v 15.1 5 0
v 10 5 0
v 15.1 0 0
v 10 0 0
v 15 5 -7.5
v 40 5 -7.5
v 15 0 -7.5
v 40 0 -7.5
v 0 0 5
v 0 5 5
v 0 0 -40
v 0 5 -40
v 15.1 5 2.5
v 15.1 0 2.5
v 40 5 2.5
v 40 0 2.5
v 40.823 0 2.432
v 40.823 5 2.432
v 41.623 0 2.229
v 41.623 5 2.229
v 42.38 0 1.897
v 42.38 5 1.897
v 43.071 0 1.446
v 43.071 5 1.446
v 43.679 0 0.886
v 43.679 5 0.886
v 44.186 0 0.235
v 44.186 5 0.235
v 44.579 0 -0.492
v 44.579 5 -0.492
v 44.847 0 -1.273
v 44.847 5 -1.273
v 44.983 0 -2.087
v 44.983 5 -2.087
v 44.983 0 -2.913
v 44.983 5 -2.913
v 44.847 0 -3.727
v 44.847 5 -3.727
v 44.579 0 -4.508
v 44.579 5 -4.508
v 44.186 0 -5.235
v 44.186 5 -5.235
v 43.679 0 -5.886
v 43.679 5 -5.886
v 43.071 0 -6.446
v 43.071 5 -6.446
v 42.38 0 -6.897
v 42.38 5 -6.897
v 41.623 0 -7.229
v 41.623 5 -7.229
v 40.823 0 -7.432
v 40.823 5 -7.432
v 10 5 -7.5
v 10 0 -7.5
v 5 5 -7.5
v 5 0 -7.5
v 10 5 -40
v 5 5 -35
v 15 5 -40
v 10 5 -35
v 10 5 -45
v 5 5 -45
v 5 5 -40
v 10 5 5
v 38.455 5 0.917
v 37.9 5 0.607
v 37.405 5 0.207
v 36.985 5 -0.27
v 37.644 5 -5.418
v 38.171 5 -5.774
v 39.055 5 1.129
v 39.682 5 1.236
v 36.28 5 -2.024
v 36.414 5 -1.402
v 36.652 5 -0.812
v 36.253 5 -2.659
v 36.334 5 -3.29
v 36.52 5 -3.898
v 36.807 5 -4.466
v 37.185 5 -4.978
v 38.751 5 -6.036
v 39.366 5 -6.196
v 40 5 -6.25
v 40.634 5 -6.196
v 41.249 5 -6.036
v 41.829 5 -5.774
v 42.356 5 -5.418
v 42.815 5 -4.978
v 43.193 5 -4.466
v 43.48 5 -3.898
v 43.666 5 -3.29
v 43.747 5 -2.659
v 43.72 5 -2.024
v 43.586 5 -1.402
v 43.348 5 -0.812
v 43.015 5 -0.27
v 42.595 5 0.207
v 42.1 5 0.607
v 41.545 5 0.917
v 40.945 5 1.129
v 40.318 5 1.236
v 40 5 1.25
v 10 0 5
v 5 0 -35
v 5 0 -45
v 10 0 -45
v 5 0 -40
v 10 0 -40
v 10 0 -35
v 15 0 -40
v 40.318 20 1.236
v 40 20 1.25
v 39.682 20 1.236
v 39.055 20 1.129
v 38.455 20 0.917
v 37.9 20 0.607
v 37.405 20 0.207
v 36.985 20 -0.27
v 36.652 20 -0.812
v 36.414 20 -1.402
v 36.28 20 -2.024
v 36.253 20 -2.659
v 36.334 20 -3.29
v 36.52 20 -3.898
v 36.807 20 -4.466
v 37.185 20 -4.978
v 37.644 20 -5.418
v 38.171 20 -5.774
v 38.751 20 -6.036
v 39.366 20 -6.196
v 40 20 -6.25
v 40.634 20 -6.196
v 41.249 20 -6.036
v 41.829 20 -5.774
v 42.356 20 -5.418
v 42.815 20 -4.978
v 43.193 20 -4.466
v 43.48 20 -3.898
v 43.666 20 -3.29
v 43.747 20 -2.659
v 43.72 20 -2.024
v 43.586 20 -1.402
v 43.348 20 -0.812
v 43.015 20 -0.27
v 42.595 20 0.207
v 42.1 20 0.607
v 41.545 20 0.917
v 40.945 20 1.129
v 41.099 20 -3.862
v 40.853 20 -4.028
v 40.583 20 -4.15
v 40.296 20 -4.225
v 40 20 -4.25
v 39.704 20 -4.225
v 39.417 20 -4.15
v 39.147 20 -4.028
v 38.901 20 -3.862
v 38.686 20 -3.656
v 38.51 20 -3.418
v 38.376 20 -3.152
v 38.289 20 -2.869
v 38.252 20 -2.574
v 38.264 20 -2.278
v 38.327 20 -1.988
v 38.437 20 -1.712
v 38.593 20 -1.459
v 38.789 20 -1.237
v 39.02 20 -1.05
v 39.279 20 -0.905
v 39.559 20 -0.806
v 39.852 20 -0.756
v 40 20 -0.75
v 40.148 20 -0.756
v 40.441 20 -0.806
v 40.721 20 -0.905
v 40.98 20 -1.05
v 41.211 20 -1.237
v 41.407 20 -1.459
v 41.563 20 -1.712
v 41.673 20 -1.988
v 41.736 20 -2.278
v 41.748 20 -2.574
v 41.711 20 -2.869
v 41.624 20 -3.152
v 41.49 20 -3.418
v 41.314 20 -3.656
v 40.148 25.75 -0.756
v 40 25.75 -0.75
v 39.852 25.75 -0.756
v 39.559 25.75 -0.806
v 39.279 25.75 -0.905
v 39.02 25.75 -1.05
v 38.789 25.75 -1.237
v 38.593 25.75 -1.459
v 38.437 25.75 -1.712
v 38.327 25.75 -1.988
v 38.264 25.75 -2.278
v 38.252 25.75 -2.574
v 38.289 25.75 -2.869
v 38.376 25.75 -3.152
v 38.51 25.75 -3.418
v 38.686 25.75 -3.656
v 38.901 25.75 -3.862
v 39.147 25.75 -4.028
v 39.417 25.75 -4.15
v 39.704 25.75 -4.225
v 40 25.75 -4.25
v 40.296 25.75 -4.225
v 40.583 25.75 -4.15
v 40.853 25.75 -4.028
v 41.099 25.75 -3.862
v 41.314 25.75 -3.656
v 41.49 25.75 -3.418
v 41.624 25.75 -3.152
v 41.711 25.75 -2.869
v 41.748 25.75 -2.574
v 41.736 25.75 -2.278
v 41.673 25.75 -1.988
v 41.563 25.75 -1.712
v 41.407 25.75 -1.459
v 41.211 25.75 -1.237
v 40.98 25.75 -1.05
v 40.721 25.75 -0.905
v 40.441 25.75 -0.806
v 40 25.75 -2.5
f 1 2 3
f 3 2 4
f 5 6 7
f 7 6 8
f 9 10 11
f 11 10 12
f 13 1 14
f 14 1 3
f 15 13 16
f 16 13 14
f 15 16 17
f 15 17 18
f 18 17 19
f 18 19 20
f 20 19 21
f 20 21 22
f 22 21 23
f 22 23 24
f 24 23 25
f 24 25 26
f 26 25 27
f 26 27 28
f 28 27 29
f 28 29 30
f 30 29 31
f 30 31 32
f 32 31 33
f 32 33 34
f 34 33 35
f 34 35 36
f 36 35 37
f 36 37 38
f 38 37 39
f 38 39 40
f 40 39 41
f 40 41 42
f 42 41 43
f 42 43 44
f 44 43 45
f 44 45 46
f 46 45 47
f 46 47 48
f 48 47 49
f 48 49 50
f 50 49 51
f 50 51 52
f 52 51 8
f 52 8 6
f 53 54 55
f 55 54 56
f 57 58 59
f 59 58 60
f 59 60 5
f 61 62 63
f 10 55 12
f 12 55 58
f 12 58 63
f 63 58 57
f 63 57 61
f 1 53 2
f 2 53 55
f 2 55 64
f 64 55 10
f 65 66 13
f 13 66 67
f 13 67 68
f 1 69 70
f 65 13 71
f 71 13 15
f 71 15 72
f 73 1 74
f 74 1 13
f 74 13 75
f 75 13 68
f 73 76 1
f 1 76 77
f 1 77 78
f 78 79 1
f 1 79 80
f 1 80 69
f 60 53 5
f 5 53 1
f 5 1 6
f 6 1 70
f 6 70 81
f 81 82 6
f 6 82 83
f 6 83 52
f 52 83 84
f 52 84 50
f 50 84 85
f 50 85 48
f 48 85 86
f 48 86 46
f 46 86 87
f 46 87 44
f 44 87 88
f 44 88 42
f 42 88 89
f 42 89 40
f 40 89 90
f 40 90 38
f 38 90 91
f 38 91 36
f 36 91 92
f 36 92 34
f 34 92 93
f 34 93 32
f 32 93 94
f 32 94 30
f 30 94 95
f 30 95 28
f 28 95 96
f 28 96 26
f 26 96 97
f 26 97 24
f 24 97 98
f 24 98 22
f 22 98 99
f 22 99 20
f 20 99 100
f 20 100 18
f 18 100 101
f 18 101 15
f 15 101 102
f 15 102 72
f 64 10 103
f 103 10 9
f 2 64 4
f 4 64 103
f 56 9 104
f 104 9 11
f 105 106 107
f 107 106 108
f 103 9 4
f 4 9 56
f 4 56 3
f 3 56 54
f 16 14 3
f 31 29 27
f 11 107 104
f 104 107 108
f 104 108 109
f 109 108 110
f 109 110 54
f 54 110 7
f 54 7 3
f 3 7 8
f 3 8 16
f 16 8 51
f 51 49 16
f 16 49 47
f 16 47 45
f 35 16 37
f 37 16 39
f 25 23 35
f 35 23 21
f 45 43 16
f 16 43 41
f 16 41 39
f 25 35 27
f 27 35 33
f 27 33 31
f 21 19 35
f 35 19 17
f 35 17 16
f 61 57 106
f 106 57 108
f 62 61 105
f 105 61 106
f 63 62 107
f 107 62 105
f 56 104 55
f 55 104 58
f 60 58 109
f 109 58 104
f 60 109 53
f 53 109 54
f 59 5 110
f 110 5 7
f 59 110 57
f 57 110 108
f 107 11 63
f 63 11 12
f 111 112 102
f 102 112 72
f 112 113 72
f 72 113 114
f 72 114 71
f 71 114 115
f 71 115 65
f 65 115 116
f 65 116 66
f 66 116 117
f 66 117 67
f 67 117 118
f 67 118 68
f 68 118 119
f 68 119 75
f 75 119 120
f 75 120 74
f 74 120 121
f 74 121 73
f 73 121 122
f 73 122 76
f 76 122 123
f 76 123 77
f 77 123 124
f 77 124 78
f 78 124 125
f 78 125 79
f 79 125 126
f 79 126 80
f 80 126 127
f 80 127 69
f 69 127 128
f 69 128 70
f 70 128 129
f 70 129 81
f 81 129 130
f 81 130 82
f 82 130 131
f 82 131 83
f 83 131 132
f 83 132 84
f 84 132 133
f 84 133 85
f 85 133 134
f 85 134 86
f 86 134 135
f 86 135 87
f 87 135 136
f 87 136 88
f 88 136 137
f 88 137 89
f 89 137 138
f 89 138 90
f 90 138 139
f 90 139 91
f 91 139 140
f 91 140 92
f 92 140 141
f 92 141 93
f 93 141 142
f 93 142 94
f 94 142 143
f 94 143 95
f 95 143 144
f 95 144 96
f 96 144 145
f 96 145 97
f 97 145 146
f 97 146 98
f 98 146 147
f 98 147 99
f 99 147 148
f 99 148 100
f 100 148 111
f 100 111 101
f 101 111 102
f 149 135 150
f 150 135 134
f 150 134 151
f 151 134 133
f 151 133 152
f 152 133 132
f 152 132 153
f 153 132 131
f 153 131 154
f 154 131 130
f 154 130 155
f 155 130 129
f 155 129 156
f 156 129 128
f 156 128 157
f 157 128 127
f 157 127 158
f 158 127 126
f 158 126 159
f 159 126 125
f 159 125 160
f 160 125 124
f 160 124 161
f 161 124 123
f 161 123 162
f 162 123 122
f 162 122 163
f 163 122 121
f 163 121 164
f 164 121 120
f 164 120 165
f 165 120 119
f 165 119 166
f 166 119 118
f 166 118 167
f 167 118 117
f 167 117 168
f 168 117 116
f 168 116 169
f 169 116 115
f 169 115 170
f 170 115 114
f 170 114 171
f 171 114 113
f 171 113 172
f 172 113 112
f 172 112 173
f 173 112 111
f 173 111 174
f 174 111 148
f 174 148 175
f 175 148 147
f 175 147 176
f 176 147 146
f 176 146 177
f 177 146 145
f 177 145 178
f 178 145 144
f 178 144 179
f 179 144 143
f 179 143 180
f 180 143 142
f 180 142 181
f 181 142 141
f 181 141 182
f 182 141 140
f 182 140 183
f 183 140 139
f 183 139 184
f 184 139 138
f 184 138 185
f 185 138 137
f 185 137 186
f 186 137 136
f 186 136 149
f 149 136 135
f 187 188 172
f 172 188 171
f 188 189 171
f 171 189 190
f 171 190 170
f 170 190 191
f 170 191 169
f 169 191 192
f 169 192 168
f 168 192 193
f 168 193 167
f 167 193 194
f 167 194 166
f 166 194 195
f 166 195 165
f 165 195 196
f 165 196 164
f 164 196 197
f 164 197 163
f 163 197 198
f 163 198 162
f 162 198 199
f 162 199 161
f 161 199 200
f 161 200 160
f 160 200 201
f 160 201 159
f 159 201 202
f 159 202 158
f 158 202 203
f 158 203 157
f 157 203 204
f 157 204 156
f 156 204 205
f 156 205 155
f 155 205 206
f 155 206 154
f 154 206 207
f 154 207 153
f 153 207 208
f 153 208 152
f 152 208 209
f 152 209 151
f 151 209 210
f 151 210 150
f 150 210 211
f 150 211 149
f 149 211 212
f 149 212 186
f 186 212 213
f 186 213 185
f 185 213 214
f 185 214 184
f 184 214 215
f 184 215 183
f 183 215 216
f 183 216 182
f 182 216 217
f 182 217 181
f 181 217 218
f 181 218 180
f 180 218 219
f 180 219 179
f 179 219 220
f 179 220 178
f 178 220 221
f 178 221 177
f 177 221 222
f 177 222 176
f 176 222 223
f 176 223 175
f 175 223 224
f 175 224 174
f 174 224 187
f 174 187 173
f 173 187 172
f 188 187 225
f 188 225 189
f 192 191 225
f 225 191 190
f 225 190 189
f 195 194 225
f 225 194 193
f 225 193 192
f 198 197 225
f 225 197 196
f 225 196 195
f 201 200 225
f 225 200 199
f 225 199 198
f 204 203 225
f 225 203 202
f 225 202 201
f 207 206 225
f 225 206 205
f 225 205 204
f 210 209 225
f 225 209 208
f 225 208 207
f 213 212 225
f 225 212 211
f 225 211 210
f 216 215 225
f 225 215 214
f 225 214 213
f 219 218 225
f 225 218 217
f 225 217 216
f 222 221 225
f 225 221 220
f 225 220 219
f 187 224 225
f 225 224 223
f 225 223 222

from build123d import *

# Parameters (mm, degrees)
SKETCH2_W           = 5
SKETCH2_H           = 27.5
BOSS_EXTRUDE1_DEPTH = 5
SKETCH3_R           = 3.75
BOSS_EXTRUDE2_DEPTH = 15
SKETCH4_R           = 1.75
BOSS_EXTRUDE3_DEPTH = 5.75


with BuildPart() as part:
    # Sketch2 → Boss-Extrude1 (new body)
    with BuildSketch(Plane(origin=(0, 0, 0), x_dir=(1, 0, 0), z_dir=(0, 1, 0))):
        with BuildLine():
            Line((0, 40), (0, -5))
            Line((0, -5), (10, -5))
            Line((10, -5), (10, 0))
            Line((10, 0), (15.1, 0))
            Line((15.1, 0), (15.1, -2.5))
            Line((15.1, -2.5), (40, -2.5))
            ThreePointArc((40, -2.5), (45, 2.5), (40, 7.5))
            Line((40, 7.5), (15, 7.5))
            Line((15, 7.5), (15, 21.207579156))
            Line((15, 21.207579156), (15, 40))
            Line((15, 40), (10, 40))
            Line((10, 40), (10, 45))
            Line((10, 45), (5, 45))
            Line((5, 45), (5, 40))
            Line((5, 40), (0, 40))
        make_face()
        with Locations((7.5, 21.25)):
            Rectangle(SKETCH2_W, SKETCH2_H, mode=Mode.SUBTRACT)
    extrude(amount=BOSS_EXTRUDE1_DEPTH)

    # Sketch3 → Boss-Extrude2 (add)
    with BuildSketch(Plane(origin=(0, 5, 0), x_dir=(1, 0, 0), z_dir=(0, 1, 0))):
        with Locations(Location((40, 2.5, 0), (0, 0, 270))):
            Circle(SKETCH3_R)
    extrude(amount=BOSS_EXTRUDE2_DEPTH)

    # Sketch4 → Boss-Extrude3 (add)
    with BuildSketch(Plane(origin=(0, 20, 0), x_dir=(1, 0, 0), z_dir=(0, 1, 0))):
        with Locations(Location((40, 2.5, 0), (0, 0, 270))):
            Circle(SKETCH4_R)
    extrude(amount=BOSS_EXTRUDE3_DEPTH)


solid = part.part
